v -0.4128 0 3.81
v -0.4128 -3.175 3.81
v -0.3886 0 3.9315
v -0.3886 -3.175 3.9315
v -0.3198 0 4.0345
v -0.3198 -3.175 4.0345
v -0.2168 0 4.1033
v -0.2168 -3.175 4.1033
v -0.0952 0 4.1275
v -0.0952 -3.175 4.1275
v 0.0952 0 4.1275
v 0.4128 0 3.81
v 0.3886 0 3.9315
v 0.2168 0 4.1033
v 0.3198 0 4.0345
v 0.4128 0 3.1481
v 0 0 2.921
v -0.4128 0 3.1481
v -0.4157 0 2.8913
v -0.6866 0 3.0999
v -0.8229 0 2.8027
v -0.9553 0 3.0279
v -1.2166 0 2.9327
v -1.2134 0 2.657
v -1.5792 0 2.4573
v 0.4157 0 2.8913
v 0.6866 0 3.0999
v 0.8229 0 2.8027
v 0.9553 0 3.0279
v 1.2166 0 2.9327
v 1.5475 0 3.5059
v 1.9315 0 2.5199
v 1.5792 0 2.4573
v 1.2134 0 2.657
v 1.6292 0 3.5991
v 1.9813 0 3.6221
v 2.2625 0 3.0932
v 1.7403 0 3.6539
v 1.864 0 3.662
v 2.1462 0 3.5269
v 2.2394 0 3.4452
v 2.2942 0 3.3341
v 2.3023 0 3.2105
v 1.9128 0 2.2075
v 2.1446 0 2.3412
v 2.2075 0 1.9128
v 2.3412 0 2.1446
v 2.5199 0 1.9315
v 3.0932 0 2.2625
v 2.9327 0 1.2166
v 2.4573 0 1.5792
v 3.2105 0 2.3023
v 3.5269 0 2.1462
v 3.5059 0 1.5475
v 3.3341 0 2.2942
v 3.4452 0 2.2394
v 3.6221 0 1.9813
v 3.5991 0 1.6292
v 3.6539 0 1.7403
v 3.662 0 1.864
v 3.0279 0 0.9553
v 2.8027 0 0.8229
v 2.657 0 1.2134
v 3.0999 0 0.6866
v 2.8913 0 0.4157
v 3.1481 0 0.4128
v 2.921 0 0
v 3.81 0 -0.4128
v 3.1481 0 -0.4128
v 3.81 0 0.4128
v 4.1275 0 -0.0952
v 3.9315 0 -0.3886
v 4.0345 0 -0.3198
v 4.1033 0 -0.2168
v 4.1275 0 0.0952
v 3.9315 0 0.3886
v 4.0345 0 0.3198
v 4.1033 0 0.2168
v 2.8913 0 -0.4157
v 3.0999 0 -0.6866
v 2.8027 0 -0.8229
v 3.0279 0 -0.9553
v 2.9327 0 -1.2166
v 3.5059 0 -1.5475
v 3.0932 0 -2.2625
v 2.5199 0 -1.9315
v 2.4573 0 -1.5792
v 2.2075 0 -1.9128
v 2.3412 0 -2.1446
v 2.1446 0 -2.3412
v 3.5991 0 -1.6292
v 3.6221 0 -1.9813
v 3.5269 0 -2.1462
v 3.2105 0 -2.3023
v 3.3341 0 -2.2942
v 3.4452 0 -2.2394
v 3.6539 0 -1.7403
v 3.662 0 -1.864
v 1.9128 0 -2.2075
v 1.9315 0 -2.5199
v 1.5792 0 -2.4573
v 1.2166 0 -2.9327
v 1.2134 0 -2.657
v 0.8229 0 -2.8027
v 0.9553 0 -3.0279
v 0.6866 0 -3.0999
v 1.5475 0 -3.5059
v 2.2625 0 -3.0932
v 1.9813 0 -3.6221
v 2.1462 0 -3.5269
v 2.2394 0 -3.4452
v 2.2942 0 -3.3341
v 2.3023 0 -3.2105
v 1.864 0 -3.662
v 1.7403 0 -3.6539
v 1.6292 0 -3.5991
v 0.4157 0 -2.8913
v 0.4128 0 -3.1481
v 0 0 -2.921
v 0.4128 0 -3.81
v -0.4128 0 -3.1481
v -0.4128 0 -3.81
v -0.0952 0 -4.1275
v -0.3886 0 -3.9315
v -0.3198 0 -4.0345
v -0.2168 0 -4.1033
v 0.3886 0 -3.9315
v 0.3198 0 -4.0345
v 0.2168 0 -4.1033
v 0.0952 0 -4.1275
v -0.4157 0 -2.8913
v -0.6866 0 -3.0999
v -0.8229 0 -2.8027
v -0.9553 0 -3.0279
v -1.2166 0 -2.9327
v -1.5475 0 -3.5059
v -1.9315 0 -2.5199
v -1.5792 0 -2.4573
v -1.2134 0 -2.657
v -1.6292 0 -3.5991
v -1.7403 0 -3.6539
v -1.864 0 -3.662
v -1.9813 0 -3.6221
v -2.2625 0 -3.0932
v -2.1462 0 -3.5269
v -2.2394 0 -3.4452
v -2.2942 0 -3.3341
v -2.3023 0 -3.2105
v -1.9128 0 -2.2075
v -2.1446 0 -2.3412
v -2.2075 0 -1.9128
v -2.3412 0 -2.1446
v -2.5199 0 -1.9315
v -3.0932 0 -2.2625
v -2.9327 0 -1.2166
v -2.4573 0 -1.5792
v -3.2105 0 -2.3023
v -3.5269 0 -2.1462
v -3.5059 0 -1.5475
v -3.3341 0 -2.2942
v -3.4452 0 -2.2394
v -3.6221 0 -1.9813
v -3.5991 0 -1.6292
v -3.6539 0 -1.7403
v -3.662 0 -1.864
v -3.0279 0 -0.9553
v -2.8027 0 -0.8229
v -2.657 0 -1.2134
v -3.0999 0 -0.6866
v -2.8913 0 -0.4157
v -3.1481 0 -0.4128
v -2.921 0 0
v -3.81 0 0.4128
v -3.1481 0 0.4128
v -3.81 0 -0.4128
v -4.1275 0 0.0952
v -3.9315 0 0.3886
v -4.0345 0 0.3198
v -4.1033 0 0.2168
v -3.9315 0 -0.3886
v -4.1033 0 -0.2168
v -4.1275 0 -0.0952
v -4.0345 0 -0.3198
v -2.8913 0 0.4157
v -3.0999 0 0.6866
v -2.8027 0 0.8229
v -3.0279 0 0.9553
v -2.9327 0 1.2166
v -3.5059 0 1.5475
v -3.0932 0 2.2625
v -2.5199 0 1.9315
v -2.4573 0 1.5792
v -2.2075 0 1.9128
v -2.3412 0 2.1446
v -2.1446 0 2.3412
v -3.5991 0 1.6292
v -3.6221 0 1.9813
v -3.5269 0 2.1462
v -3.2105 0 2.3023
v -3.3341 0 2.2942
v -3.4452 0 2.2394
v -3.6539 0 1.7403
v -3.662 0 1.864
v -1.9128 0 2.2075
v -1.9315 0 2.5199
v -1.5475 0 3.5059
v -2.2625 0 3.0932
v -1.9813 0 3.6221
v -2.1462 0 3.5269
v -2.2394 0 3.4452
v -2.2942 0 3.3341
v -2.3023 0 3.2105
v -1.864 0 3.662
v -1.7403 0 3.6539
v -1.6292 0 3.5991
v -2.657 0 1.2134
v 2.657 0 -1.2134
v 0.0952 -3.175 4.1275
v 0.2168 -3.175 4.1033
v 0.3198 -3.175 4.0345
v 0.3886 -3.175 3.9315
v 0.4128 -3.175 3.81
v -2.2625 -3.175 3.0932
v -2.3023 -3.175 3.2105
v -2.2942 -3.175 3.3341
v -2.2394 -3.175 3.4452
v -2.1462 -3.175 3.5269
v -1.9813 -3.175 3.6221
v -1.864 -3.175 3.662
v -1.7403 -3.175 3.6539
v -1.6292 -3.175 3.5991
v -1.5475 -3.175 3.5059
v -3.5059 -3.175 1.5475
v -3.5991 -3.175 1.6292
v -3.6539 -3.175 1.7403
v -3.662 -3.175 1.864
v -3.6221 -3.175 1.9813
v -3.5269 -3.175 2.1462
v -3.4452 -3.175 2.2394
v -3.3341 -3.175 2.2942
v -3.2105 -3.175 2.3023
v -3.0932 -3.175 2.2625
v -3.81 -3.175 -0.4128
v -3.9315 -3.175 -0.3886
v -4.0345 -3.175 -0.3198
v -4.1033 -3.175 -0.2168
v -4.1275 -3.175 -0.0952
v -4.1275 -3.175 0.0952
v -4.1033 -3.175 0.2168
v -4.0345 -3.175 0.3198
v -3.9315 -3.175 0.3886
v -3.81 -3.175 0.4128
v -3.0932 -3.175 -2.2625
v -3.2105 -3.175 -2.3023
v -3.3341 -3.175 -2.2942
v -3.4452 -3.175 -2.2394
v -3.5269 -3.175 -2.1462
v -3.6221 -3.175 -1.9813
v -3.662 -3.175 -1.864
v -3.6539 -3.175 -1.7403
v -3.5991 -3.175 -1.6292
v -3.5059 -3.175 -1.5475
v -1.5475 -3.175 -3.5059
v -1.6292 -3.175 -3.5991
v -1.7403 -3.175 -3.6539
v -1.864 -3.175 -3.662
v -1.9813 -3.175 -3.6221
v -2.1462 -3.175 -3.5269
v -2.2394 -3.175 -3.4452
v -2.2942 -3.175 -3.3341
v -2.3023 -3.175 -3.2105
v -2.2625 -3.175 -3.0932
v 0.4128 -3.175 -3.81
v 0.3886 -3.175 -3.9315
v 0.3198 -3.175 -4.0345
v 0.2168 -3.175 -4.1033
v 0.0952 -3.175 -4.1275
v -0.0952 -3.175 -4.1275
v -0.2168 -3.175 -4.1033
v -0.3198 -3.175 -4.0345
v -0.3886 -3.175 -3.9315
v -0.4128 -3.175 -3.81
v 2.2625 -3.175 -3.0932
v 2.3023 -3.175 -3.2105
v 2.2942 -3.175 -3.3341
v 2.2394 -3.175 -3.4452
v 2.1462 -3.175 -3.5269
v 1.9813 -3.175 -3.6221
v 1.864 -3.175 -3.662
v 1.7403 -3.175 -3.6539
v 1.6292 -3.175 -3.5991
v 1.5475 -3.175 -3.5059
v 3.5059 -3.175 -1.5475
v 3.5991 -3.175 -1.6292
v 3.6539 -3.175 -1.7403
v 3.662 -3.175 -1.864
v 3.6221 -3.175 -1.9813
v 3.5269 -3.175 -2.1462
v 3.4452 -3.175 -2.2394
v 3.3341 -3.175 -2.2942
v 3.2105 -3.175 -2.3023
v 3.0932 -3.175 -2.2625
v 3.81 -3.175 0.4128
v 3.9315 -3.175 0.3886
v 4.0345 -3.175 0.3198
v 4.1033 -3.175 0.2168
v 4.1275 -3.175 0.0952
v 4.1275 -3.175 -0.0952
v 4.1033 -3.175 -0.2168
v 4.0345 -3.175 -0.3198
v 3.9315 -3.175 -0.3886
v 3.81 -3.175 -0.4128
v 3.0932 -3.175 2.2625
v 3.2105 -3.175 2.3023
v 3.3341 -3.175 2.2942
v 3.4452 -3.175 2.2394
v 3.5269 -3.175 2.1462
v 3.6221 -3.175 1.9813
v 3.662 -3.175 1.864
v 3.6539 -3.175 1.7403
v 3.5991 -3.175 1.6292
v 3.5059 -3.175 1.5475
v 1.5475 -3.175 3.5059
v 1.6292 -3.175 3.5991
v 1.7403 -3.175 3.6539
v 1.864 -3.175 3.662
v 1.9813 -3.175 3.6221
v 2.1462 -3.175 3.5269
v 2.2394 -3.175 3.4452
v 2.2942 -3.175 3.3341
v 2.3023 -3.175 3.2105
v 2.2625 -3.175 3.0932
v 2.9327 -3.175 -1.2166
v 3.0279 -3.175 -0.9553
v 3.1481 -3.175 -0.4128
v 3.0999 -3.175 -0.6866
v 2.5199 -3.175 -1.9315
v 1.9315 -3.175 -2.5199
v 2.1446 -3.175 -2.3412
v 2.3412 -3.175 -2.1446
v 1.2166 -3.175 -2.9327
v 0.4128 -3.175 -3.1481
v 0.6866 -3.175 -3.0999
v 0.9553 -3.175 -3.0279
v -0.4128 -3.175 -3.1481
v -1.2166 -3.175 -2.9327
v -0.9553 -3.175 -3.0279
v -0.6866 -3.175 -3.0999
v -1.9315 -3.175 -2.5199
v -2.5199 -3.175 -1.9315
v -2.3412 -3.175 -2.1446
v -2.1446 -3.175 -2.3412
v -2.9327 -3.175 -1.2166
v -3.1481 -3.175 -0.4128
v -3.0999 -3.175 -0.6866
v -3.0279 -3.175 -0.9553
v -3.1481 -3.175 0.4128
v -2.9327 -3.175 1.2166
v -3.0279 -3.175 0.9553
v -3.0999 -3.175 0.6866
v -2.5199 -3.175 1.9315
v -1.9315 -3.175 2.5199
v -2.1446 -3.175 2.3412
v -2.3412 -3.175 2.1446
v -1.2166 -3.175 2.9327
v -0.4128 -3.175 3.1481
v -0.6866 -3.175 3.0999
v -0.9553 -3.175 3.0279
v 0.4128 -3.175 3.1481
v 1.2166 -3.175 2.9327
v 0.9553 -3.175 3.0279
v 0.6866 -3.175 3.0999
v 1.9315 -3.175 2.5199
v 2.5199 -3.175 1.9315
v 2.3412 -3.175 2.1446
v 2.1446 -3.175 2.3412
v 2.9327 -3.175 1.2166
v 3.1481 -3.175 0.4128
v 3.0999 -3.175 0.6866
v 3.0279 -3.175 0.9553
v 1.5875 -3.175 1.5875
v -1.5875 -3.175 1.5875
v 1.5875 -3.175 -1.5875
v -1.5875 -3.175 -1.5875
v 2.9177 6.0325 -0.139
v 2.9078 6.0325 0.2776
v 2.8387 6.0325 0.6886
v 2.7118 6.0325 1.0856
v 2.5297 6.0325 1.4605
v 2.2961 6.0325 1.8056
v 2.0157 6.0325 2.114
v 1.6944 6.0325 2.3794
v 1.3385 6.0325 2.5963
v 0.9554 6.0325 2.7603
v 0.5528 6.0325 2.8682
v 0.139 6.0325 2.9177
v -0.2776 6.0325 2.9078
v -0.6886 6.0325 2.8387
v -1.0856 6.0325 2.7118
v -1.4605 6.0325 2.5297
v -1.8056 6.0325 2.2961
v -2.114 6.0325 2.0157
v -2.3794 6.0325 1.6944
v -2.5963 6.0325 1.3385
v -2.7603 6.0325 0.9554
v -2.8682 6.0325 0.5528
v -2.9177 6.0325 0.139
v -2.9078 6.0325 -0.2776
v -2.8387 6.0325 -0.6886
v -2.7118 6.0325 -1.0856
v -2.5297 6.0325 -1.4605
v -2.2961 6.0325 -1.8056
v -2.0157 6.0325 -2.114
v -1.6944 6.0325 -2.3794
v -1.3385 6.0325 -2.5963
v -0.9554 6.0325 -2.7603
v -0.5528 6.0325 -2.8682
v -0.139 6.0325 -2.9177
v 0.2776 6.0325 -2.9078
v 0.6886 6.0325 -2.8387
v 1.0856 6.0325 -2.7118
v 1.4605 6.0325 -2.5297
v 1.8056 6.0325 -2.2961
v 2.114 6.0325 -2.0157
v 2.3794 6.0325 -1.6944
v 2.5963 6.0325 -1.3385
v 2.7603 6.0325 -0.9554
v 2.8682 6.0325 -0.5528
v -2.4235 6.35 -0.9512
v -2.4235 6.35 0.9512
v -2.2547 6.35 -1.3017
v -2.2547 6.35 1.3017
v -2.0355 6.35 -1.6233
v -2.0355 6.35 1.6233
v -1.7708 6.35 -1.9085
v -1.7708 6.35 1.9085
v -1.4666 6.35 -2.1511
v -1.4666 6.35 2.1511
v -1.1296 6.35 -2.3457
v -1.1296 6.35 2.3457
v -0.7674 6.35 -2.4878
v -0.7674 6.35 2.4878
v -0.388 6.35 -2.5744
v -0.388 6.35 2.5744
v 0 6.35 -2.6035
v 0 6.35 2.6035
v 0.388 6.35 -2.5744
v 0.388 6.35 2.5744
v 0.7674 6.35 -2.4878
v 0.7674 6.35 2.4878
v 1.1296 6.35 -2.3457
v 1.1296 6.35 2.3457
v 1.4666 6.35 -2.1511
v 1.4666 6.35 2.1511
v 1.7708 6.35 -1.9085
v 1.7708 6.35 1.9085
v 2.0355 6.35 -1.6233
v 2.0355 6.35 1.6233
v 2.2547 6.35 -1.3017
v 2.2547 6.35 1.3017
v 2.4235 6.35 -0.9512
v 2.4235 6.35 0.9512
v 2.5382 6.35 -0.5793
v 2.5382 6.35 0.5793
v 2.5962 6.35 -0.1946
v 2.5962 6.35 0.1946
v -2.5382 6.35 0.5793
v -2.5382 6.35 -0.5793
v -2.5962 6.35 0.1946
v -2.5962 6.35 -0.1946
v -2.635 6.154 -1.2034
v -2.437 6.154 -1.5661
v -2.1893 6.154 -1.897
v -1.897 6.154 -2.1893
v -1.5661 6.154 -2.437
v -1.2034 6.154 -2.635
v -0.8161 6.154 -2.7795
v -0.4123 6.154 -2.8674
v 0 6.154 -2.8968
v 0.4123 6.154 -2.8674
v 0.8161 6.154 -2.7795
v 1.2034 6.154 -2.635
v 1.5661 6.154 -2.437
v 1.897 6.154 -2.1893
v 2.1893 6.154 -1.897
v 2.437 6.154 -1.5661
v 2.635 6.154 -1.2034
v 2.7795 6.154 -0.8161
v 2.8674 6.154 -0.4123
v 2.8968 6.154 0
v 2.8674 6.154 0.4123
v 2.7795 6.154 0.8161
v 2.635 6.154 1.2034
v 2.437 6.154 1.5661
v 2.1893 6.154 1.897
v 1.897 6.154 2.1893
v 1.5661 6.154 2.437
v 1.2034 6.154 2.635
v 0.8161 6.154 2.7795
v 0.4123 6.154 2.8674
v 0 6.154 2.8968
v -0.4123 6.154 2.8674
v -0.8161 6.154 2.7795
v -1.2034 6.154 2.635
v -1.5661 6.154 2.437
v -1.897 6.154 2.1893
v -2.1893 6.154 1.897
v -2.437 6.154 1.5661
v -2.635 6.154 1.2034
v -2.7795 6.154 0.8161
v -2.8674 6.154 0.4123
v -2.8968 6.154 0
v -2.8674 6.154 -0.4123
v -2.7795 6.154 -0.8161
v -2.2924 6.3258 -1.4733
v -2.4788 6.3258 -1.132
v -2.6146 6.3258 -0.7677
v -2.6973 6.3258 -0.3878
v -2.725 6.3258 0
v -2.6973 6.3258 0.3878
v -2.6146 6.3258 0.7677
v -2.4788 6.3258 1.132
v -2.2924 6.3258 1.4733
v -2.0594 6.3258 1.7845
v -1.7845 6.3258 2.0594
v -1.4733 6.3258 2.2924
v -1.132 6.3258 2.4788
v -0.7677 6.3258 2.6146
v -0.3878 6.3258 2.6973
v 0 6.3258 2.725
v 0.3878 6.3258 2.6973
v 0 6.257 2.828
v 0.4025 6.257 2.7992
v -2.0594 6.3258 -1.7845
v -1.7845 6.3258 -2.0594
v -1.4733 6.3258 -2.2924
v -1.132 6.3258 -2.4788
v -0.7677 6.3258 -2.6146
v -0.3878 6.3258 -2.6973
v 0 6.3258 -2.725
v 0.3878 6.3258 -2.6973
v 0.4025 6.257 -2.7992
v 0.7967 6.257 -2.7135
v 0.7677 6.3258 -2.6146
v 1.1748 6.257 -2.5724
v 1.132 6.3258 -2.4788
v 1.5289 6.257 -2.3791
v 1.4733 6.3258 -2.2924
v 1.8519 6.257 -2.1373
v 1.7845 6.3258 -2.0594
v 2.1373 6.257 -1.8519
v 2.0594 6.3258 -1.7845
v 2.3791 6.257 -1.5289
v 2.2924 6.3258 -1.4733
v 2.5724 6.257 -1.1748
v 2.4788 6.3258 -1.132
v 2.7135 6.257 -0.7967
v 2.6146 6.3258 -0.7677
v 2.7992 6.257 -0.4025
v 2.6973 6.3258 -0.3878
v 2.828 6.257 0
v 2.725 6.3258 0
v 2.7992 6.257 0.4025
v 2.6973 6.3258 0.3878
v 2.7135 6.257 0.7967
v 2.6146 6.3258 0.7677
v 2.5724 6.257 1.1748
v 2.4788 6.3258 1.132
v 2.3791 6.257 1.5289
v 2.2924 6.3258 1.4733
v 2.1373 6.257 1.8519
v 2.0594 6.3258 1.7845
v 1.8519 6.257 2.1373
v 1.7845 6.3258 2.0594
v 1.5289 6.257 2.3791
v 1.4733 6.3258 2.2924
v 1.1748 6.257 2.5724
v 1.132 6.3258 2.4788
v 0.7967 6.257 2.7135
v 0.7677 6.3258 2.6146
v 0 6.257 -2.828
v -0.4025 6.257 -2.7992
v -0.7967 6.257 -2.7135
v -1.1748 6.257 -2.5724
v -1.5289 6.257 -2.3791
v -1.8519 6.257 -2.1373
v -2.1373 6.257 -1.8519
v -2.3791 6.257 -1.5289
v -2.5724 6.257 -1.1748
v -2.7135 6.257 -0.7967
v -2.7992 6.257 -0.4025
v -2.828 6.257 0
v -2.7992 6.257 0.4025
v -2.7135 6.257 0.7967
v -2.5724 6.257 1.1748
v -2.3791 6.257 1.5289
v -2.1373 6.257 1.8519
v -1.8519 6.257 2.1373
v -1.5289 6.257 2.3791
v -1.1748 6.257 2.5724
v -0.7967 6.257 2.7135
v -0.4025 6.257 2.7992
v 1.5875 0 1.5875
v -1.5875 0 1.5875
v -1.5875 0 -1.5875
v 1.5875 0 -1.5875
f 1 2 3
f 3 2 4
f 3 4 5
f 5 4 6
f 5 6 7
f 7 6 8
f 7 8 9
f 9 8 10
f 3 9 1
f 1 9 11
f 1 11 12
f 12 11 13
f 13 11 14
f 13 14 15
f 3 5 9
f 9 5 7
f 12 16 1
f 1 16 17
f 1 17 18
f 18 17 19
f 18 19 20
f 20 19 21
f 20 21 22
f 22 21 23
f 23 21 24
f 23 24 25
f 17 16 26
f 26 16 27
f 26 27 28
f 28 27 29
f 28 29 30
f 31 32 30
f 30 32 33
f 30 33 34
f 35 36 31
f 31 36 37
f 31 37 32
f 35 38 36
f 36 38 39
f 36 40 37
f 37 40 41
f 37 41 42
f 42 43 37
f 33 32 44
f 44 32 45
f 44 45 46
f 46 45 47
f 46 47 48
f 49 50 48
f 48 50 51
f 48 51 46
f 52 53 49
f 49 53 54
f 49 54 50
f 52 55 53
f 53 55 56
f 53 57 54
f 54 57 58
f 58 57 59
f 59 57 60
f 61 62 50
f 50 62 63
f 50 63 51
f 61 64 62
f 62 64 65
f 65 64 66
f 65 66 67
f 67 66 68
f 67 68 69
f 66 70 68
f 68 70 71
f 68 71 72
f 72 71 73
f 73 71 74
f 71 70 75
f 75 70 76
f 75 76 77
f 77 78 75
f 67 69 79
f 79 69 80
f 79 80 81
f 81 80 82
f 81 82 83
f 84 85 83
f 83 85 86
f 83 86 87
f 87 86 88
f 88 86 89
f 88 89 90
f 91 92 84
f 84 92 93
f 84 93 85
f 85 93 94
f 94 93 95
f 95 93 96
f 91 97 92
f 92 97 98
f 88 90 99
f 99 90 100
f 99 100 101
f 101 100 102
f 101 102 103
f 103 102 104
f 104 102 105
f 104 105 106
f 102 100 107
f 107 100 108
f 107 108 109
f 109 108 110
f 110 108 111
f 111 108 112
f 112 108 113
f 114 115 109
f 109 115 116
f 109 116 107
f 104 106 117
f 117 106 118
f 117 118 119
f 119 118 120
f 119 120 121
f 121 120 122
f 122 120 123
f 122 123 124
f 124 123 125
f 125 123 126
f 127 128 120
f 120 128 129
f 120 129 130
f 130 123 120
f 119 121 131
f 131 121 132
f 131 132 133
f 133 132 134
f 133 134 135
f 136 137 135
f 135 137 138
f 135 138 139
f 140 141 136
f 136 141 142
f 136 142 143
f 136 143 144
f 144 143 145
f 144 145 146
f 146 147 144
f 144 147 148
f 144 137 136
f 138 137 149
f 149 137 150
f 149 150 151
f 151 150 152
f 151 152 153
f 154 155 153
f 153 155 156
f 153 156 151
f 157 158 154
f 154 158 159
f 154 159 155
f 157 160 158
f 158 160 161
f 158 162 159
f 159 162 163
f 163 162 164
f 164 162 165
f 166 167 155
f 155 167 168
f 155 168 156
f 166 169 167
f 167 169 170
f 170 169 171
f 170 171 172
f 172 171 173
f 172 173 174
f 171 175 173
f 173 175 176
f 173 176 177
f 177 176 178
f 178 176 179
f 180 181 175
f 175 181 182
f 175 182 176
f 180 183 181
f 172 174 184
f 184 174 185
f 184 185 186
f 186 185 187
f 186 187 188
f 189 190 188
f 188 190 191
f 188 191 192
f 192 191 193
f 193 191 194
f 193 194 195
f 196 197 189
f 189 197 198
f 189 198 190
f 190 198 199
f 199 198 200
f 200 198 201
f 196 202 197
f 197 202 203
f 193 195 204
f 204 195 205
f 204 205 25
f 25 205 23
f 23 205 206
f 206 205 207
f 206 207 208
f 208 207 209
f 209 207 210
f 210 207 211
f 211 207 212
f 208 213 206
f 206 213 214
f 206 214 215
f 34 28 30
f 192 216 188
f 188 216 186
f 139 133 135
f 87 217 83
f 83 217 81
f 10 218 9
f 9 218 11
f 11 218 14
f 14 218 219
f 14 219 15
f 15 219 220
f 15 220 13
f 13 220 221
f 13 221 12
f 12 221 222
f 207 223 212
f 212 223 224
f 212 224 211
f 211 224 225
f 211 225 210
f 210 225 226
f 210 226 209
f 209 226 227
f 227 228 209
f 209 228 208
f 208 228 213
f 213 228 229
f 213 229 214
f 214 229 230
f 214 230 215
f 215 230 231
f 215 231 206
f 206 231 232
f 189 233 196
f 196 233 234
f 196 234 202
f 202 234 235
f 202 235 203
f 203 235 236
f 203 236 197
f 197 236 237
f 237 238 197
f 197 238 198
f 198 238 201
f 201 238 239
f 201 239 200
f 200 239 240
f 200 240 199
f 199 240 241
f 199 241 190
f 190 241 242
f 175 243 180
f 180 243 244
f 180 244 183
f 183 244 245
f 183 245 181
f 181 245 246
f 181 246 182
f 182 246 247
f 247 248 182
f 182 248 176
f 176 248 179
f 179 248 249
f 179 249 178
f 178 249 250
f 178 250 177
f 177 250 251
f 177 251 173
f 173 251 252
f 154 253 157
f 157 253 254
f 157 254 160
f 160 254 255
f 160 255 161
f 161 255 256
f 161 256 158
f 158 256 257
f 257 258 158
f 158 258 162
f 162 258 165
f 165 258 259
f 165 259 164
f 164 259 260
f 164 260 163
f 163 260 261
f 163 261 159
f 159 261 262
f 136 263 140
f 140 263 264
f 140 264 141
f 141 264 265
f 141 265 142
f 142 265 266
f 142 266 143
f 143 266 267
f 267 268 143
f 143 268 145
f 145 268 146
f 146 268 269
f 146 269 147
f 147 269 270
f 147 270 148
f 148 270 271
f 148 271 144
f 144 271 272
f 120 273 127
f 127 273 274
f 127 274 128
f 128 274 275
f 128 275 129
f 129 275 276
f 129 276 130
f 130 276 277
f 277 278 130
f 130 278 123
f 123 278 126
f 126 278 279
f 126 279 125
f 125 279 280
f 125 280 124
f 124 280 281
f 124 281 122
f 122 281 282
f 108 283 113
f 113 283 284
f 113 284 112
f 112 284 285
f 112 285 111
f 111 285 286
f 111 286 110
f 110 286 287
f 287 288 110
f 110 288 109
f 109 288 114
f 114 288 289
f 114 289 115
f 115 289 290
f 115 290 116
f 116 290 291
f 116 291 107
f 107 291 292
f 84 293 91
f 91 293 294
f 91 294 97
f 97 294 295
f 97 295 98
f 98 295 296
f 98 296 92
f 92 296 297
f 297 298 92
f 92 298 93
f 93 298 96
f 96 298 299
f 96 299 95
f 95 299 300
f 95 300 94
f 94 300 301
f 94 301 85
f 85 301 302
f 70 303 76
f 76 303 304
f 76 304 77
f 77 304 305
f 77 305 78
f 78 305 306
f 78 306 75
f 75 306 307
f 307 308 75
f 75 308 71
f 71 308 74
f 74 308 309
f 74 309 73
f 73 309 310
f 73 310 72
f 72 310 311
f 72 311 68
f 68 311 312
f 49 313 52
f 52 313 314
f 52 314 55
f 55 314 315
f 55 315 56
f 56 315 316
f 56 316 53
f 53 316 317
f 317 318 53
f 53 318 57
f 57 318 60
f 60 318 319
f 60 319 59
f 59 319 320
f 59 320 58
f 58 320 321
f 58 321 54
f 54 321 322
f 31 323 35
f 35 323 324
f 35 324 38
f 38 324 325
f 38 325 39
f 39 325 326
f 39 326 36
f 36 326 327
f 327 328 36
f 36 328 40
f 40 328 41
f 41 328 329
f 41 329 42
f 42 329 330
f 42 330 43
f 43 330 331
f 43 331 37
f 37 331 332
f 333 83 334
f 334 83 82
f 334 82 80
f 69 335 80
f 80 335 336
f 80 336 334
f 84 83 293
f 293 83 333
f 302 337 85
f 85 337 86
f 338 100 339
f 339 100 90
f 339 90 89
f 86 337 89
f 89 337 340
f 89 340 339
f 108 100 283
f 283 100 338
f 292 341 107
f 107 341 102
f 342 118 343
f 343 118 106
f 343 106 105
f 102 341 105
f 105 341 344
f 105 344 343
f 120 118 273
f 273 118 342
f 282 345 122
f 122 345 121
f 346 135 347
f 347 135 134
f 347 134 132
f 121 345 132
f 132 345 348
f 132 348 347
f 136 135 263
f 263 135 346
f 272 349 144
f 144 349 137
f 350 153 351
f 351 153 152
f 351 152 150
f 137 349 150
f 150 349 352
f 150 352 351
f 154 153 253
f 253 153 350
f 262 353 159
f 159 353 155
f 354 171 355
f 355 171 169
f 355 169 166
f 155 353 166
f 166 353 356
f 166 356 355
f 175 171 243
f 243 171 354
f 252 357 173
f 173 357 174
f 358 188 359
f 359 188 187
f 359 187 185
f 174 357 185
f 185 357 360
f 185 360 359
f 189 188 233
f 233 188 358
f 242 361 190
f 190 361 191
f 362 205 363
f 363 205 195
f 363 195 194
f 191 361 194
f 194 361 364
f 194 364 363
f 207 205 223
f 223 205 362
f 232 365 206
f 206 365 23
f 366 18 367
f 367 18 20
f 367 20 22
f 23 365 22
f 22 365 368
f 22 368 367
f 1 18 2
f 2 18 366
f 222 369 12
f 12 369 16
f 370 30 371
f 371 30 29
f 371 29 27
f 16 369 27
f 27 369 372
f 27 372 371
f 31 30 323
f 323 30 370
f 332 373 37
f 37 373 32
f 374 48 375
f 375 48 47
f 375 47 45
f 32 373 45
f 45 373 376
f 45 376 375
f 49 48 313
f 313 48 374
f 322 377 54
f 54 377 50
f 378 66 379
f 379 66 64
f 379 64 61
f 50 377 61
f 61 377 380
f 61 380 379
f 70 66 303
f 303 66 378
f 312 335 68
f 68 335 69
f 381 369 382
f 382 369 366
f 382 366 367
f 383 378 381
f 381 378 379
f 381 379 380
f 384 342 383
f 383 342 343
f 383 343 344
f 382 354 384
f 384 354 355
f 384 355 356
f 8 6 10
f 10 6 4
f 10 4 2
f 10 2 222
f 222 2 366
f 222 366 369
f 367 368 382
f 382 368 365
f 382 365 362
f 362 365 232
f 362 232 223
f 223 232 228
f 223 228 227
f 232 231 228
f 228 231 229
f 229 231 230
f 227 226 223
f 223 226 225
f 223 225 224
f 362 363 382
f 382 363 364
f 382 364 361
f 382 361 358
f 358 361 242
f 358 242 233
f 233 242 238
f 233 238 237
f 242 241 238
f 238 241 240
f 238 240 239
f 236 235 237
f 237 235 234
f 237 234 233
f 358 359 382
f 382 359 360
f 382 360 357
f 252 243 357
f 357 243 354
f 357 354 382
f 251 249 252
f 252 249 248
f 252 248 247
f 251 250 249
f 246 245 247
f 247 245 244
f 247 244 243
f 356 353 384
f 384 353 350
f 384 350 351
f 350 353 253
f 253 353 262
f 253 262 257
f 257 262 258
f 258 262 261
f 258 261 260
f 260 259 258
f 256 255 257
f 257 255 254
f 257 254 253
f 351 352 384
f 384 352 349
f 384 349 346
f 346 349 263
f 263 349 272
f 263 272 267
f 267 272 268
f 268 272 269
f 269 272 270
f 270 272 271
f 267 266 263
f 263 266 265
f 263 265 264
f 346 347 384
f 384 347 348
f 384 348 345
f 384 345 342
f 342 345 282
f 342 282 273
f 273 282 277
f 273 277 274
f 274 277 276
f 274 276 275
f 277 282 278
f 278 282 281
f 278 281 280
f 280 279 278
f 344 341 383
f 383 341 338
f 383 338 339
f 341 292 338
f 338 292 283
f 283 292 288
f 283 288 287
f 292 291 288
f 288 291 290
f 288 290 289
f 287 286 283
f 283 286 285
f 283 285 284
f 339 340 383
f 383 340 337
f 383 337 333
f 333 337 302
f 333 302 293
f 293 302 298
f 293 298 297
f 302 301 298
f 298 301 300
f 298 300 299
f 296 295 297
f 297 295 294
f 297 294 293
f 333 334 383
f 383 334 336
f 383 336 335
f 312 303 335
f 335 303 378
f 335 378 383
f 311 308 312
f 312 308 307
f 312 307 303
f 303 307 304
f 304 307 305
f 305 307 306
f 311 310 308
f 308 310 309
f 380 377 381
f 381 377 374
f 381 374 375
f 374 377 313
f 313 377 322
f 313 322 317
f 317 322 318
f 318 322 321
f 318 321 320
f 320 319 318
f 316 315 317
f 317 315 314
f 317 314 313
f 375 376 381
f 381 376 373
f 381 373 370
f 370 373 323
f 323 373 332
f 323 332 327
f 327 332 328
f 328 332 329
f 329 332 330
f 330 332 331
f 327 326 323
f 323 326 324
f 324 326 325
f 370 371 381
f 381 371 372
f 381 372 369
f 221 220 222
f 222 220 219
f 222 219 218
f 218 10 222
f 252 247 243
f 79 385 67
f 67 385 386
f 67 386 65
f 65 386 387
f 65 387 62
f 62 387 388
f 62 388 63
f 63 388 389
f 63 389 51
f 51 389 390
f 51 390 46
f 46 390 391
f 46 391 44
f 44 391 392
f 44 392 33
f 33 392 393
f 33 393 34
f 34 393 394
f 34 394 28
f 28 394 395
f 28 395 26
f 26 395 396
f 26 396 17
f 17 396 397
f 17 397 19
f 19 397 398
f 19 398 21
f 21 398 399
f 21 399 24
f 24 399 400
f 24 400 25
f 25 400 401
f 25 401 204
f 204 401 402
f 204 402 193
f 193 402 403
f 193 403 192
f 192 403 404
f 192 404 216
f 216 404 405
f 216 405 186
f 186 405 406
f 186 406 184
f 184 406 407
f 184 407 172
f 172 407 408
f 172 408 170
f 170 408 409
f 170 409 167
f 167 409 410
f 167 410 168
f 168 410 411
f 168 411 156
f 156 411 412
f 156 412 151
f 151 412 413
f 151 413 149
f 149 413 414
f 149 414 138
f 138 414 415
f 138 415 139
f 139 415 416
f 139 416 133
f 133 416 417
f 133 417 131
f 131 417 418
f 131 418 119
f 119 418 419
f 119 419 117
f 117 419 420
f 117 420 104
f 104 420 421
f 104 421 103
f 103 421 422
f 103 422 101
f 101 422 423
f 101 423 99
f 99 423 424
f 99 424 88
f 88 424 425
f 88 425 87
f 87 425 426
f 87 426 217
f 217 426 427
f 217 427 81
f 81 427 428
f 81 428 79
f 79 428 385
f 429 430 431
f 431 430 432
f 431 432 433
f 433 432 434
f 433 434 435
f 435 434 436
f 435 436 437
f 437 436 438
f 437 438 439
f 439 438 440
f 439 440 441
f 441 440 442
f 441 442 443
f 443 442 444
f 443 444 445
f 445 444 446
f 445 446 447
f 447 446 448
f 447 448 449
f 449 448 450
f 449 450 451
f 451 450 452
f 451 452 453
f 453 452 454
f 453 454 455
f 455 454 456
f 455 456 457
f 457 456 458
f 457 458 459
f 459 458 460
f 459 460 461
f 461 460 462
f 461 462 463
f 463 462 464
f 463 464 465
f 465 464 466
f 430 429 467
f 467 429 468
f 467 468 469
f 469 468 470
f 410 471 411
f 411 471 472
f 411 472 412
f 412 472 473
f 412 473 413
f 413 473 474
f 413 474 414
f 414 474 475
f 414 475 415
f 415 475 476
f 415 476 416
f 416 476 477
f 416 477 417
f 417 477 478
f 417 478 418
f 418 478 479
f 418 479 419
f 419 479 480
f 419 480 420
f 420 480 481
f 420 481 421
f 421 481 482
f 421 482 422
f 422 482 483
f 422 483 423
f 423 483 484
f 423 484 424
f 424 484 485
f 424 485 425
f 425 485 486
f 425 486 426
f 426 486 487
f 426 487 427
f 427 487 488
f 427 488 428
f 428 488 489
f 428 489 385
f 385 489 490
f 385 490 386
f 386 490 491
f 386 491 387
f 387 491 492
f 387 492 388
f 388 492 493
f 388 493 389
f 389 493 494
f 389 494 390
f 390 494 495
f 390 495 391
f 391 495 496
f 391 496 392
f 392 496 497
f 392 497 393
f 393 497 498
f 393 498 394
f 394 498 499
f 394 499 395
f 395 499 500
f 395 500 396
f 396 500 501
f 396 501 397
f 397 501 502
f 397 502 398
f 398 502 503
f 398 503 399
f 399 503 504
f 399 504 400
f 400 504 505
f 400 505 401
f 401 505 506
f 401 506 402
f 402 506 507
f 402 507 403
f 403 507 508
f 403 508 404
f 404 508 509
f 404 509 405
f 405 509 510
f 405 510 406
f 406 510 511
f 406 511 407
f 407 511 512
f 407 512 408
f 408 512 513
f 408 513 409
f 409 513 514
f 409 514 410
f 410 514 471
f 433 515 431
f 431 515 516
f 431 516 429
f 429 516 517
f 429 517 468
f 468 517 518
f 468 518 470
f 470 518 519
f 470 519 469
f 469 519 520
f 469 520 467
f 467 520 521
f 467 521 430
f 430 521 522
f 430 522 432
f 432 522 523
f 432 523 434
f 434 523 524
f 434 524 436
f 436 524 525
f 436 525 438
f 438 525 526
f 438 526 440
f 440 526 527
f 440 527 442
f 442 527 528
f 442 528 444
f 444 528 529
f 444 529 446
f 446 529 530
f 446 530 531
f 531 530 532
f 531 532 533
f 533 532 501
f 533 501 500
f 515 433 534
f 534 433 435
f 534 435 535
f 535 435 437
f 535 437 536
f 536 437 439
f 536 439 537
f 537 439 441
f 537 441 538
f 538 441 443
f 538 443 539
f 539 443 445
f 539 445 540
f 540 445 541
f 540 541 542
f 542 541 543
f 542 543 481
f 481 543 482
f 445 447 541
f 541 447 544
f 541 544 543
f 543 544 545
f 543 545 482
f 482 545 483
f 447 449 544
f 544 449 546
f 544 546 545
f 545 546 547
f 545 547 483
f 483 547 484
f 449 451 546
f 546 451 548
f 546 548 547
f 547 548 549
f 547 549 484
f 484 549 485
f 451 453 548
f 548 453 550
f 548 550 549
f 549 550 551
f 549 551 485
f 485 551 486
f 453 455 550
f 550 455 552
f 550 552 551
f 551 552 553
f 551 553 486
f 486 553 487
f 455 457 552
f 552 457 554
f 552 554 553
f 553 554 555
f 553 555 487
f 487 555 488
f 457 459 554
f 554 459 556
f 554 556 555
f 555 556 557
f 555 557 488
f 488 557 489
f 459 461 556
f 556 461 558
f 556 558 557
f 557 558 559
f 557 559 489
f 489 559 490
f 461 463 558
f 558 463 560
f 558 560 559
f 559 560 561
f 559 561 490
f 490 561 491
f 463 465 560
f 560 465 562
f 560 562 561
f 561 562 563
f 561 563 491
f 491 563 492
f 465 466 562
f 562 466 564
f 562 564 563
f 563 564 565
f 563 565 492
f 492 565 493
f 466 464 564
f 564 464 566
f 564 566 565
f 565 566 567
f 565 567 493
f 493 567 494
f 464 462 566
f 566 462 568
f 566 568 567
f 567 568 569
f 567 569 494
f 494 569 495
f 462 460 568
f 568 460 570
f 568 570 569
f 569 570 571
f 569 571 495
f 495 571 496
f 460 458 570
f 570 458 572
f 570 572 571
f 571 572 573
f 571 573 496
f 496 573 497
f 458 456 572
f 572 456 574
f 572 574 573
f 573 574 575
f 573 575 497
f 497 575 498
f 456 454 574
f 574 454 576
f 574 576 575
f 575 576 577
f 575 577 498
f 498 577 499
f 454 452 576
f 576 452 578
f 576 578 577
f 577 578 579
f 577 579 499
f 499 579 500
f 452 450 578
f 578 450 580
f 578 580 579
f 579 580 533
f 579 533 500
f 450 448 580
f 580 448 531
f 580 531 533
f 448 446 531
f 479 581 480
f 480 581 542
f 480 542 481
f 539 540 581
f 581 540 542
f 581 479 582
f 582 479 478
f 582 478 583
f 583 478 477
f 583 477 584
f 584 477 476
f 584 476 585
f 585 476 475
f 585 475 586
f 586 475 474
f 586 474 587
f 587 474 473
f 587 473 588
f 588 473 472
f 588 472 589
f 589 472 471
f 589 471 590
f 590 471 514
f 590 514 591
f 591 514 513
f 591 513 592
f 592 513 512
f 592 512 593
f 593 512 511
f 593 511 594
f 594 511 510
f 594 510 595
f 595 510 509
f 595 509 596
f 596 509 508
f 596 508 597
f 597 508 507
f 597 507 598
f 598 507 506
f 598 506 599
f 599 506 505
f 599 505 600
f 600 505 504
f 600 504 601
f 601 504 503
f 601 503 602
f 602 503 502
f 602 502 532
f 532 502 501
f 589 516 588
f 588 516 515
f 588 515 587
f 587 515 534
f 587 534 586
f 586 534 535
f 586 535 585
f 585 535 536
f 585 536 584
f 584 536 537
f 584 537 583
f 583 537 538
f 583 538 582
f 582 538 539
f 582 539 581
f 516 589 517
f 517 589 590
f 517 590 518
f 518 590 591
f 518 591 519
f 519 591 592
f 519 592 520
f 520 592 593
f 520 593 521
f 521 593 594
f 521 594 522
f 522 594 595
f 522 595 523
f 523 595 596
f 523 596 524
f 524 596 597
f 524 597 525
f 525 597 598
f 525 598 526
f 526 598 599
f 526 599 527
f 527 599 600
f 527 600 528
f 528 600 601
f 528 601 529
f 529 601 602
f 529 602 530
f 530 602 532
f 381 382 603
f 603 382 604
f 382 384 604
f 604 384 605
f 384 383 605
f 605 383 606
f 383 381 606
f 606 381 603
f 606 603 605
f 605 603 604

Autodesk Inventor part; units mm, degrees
ref_plane "YZ Plane" through (0, 0, 0) normal (1, 0, 0) x (0, 1, 0)
ref_plane "XZ Plane" through (0, 0, 0) normal (0, 1, 0) x (-1, 0, 0)
ref_plane "XY Plane" through (0, 0, 0) normal (0, 0, 1) x (1, 0, 0)
sketch "Sketch1" plane through (0, 0, 0) normal (0, 1, 0) x (-1, 0, 0)
  circle A0 centre (0, 0) radius 2.921
  dimension "d0" = 5.842
extrude "Extrusion1" add sketch "Sketch1" along normal blind 6.35
sketch "Sketch2" plane through (0, 0, 0) normal (0, -1, 0) x (1, 0, 0)
  circle A0 centre (0, 0) radius 2.921
  line L0 (-4.1275, -0.4128) -> (4.1275, -0.4128)
  line L1 (4.1275, -0.4128) -> (4.1275, 0.4128)
  line L2 (4.1275, 0.4128) -> (-4.1275, 0.4128)
  line L3 (-4.1275, 0.4128) -> (-4.1275, -0.4128)
  line L4 (-4.1275, -0.4128) -> (4.1275, 0.4128) construction
  line L5 (4.1275, -0.4128) -> (-4.1275, 0.4128) construction
  line L6 (3.7809, 1.7063) -> (3.3681, 2.4212)
  line L7 (-3.3681, -2.4212) -> (3.7809, 1.7063)
  line L8 (3.3681, 2.4212) -> (-3.7809, -1.7063)
  line L9 (-3.7809, -1.7063) -> (-3.3681, -2.4212)
  line L10 (2.4212, 3.3681) -> (1.7063, 3.7809)
  line L11 (-1.7063, -3.7809) -> (2.4212, 3.3681)
  line L12 (1.7063, 3.7809) -> (-2.4212, -3.3681)
  line L13 (-2.4212, -3.3681) -> (-1.7063, -3.7809)
  line L14 (0.4128, 4.1275) -> (-0.4127, 4.1275)
  line L15 (0.4127, -4.1275) -> (0.4128, 4.1275)
  line L16 (-0.4127, 4.1275) -> (-0.4128, -4.1275)
  line L17 (-0.4128, -4.1275) -> (0.4127, -4.1275)
  line L18 (-1.7063, 3.7809) -> (-2.4212, 3.3681)
  line L19 (2.4212, -3.3681) -> (-1.7063, 3.7809)
  line L20 (-2.4212, 3.3681) -> (1.7063, -3.7809)
  line L21 (1.7063, -3.7809) -> (2.4212, -3.3681)
  line L22 (-3.3681, 2.4212) -> (-3.7809, 1.7063)
  line L23 (3.7809, -1.7063) -> (-3.3681, 2.4212)
  line L24 (-3.7809, 1.7063) -> (3.3681, -2.4212)
  line L25 (3.3681, -2.4212) -> (3.7809, -1.7063)
  line L26 (-4.1275, 0.4128) -> (-4.1275, -0.4127)
  line L27 (4.1275, 0.4127) -> (-4.1275, 0.4128)
  line L28 (-4.1275, -0.4127) -> (4.1275, -0.4128)
  line L29 (4.1275, -0.4128) -> (4.1275, 0.4127)
  line L30 (-3.7809, -1.7063) -> (-3.3681, -2.4212)
  line L31 (3.3681, 2.4212) -> (-3.7809, -1.7063)
  line L32 (-3.3681, -2.4212) -> (3.7809, 1.7063)
  line L33 (3.7809, 1.7063) -> (3.3681, 2.4212)
  line L34 (-2.4212, -3.3681) -> (-1.7063, -3.7809)
  line L35 (1.7063, 3.7809) -> (-2.4212, -3.3681)
  line L36 (-1.7063, -3.7809) -> (2.4212, 3.3681)
  line L37 (2.4212, 3.3681) -> (1.7063, 3.7809)
  line L38 (-0.4128, -4.1275) -> (0.4127, -4.1275)
  line L39 (-0.4127, 4.1275) -> (-0.4128, -4.1275)
  line L40 (0.4127, -4.1275) -> (0.4128, 4.1275)
  line L41 (0.4128, 4.1275) -> (-0.4127, 4.1275)
  line L42 (1.7063, -3.7809) -> (2.4212, -3.3681)
  line L43 (-2.4212, 3.3681) -> (1.7063, -3.7809)
  line L44 (2.4212, -3.3681) -> (-1.7063, 3.7809)
  line L45 (-1.7063, 3.7809) -> (-2.4212, 3.3681)
  line L46 (3.3681, -2.4212) -> (3.7809, -1.7063)
  line L47 (-3.7809, 1.7063) -> (3.3681, -2.4212)
  line L48 (3.7809, -1.7063) -> (-3.3681, 2.4212)
  line L49 (-3.3681, 2.4212) -> (-3.7809, 1.7063)
  circle A1 centre (0, 0) radius 3.175
  circle A2 centre (0, 0) radius 3.175
  point P0 (2.9327, -1.2166)
  point P1 (3.1481, -0.4127)
  point P2 (3.1481, 0.4128)
  point P3 (2.9327, 1.2166)
  point P4 (2.5199, 1.9315)
  point P5 (1.9315, 2.5199)
  point P6 (1.2166, 2.9327)
  point P7 (0.4128, 3.1481)
  point P8 (-0.4128, 3.1481)
  point P9 (-1.2166, 2.9327)
  point P10 (-1.9315, 2.5199)
  point P11 (-2.5199, 1.9315)
  point P12 (-2.9327, 1.2166)
  point P13 (-3.1481, 0.4127)
  point P14 (-3.1481, -0.4128)
  point P15 (-2.9327, -1.2166)
  point P16 (-2.5199, -1.9315)
  point P17 (-1.9315, -2.5199)
  point P18 (-1.2166, -2.9327)
  point P19 (-0.4128, -3.1481)
  point P20 (0.4127, -3.1481)
  point P21 (1.2166, -2.9327)
  point P22 (1.9315, -2.5199)
  point P23 (2.5199, -1.9315)
  dimension "d5" = 8.255
  dimension "d6" = 0.8255
  dimension "d7" = 360
extrude "Extrusion2" add sketch "Sketch2" along normal blind 3.175
fillet "Fillet1" radius 0.3175 2 edges at (2.4212, -1.5875, 3.3681) (1.7063, -1.5875, 3.7809)
pattern_circular "Circular Pattern1" count 12 over 360 about axis through (0, 0, 0) along (0, 1, 0) of "Fillet1", "Extrusion1"
fillet "Fillet2" radius 0.3175 1 edges at (2.921, 6.35, 0)
sketch "Sketch3" plane through (0, -3.175, 0) normal (0, -1, 0) x (1, 0, 0)
  line L0 (-1.5875, -1.5875) -> (1.5875, -1.5875)
  line L1 (1.5875, -1.5875) -> (1.5875, 1.5875)
  line L2 (1.5875, 1.5875) -> (-1.5875, 1.5875)
  line L3 (-1.5875, 1.5875) -> (-1.5875, -1.5875)
  line L4 (-1.5875, -1.5875) -> (1.5875, 1.5875) construction
  line L5 (1.5875, -1.5875) -> (-1.5875, 1.5875) construction
  point P0 (0, 0)
  dimension "d15" = 3.175
  dimension "d16" = 3.175
extrude "Extrusion3" cut sketch "Sketch3" against normal blind 3.175
properties part number "Gear1"
